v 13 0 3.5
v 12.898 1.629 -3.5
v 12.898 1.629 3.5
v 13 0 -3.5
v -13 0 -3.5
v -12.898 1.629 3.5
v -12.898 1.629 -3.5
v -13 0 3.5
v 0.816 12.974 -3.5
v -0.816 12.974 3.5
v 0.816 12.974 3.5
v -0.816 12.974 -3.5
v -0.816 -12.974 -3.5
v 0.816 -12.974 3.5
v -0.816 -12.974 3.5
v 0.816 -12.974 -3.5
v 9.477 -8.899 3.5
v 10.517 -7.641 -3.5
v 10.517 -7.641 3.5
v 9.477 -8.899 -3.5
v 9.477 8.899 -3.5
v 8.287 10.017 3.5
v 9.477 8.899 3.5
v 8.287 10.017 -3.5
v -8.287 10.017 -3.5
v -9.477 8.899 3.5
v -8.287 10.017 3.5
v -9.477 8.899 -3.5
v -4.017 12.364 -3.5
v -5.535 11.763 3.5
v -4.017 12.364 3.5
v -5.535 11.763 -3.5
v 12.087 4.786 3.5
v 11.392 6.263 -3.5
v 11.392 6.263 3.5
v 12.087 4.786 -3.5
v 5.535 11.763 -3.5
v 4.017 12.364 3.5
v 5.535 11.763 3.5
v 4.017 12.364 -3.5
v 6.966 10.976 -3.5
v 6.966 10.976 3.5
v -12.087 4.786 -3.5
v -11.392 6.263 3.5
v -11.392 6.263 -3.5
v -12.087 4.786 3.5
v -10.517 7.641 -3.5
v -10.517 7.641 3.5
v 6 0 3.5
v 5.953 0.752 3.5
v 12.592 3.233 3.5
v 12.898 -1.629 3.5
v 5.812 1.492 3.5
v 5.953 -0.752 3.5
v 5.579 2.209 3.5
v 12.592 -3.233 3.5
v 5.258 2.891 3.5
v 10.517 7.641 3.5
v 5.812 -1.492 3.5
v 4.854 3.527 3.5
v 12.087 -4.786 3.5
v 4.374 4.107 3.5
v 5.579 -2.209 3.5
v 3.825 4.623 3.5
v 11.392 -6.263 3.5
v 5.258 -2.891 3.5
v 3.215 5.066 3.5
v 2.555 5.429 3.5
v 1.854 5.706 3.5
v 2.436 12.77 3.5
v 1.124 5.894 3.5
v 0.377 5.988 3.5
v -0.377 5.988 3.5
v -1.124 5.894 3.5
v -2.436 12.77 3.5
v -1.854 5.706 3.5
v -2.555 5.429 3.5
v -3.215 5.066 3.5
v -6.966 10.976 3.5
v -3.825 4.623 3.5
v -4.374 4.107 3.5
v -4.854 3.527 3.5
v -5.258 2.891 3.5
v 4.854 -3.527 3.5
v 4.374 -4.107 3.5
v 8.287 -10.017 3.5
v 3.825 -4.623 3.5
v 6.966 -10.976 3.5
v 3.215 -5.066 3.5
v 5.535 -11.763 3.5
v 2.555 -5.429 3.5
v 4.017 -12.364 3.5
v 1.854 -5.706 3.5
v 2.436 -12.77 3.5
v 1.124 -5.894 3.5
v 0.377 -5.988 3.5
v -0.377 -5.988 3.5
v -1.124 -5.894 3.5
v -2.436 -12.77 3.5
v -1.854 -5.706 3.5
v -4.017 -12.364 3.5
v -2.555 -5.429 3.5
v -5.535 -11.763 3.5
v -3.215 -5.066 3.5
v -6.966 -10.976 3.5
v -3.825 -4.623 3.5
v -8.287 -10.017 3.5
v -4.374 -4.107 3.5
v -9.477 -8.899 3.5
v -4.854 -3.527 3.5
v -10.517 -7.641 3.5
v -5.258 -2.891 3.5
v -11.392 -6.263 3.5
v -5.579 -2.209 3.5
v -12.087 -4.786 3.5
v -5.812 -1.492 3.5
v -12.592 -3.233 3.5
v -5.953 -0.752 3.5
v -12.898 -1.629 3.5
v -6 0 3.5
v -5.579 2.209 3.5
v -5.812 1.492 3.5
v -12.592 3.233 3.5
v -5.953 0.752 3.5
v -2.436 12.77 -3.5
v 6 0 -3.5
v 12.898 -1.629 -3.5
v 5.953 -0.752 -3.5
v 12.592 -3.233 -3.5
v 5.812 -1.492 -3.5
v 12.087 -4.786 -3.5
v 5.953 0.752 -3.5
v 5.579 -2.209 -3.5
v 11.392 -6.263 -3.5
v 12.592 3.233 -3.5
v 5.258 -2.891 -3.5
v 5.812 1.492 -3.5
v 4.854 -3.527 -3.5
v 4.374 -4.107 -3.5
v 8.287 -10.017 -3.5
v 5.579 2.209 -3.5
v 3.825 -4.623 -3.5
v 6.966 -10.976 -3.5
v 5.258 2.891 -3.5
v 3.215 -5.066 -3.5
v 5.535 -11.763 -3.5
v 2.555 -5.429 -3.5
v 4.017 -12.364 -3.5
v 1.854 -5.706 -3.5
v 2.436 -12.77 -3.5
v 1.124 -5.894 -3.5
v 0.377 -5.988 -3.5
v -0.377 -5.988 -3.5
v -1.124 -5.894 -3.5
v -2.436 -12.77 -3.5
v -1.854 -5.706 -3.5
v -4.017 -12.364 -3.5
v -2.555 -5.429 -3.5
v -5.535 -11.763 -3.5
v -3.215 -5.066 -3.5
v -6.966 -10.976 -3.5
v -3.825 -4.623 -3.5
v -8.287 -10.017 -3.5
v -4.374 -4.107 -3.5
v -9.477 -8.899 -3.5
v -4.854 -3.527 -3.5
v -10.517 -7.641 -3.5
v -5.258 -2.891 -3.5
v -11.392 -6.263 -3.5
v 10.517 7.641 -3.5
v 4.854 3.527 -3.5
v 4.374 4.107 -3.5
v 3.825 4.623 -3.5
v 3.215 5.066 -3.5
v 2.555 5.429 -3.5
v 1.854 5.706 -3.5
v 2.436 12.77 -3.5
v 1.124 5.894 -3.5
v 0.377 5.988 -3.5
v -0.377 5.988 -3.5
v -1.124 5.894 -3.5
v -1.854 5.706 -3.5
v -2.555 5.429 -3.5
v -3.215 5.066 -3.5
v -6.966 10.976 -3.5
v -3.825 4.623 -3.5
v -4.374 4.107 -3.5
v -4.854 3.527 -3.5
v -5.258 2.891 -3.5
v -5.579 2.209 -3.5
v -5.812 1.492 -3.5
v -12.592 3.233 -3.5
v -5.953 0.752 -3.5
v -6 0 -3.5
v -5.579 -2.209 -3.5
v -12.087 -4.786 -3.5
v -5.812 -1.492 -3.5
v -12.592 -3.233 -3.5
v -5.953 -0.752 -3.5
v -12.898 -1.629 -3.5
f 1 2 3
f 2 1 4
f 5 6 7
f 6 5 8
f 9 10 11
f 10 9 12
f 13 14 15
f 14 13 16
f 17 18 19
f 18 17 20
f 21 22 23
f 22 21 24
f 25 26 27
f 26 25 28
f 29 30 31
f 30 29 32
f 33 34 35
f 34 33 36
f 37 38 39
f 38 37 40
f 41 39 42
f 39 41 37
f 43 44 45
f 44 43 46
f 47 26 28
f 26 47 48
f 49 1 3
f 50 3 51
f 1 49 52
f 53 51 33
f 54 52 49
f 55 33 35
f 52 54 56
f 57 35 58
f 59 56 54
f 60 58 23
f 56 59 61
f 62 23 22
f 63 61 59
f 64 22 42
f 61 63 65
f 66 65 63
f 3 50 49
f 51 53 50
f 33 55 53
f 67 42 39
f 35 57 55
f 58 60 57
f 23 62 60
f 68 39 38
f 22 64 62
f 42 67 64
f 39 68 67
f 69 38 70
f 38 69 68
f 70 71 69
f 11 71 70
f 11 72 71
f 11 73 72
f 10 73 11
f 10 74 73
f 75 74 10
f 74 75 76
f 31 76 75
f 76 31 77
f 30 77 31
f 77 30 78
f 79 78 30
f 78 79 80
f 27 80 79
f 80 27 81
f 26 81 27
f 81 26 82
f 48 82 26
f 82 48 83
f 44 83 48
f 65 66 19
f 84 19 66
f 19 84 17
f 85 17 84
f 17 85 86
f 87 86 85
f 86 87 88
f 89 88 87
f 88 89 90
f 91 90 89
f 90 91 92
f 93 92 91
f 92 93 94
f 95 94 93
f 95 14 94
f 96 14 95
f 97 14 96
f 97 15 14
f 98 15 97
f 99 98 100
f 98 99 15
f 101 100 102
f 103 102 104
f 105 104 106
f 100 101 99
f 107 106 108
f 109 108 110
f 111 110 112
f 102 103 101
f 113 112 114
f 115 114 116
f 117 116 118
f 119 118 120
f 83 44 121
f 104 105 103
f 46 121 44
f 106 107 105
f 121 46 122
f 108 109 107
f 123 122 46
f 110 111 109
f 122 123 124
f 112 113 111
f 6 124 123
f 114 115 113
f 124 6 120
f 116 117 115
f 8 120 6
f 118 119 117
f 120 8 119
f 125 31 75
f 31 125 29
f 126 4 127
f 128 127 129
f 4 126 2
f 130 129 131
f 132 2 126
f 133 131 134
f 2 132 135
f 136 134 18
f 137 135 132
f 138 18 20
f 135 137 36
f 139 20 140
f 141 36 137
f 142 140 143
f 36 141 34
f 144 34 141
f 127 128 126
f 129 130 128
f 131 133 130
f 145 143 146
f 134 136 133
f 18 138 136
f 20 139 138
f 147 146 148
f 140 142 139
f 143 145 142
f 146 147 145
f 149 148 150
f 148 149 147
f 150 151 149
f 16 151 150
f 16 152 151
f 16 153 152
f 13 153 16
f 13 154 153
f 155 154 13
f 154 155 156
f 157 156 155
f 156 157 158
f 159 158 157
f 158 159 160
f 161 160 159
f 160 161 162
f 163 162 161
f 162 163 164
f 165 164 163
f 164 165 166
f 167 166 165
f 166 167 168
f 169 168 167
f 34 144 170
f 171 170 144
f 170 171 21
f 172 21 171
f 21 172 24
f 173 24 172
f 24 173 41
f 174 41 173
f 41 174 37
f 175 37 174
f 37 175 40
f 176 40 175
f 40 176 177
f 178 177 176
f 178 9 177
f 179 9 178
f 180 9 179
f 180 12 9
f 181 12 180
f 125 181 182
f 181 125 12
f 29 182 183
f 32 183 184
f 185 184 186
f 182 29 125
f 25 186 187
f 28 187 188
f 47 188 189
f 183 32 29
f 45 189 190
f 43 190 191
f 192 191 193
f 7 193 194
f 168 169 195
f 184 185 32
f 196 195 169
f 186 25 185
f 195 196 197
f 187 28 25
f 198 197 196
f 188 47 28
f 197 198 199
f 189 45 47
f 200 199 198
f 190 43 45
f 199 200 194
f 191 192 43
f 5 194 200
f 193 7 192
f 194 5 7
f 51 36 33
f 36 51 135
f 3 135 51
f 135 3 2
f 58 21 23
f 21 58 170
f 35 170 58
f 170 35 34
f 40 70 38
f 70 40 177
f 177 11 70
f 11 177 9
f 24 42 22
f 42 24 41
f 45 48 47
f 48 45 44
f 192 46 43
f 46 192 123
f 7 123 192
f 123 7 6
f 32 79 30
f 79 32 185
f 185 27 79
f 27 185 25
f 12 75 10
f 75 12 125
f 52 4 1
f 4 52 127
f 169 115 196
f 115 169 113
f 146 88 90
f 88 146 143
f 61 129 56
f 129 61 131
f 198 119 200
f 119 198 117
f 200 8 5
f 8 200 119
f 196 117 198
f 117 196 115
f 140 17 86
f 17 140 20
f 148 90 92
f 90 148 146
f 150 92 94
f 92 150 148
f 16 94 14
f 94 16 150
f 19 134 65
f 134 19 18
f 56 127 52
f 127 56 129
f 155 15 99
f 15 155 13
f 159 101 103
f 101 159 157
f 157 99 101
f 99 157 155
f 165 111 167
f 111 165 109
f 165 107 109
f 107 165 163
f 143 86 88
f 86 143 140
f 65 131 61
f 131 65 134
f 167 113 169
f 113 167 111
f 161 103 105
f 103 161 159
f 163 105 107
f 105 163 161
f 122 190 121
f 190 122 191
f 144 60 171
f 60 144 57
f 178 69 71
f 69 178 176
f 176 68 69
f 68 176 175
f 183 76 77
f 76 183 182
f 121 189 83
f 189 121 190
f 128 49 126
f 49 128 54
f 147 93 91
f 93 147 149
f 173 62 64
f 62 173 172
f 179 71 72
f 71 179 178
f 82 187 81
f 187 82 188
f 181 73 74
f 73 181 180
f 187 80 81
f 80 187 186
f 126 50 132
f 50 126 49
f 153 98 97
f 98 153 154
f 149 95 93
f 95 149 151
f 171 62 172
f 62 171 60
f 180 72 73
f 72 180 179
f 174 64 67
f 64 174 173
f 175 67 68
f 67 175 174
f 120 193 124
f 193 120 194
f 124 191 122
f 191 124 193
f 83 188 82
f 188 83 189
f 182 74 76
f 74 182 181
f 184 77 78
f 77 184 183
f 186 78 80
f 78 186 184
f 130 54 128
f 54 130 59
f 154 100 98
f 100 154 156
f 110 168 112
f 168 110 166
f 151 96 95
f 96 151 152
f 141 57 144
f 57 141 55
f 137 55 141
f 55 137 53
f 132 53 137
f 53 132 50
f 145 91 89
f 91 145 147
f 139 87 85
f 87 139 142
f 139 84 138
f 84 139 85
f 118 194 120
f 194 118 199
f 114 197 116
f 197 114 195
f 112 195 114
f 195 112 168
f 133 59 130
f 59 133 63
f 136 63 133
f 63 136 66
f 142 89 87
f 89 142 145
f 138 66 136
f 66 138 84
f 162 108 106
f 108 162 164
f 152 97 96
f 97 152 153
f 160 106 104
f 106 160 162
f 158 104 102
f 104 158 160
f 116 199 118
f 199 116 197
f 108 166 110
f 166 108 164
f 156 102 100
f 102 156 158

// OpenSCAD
$fn = 50;


difference() {
	union() {
		translate(v = [0, 0, -3.5000000000]) {
			cylinder(h = 7, r = 13.0000000000);
		}
	}
	union() {
		translate(v = [0, 0, -100.0000000000]) {
			cylinder(h = 200, r = 6);
		}
	}
}
